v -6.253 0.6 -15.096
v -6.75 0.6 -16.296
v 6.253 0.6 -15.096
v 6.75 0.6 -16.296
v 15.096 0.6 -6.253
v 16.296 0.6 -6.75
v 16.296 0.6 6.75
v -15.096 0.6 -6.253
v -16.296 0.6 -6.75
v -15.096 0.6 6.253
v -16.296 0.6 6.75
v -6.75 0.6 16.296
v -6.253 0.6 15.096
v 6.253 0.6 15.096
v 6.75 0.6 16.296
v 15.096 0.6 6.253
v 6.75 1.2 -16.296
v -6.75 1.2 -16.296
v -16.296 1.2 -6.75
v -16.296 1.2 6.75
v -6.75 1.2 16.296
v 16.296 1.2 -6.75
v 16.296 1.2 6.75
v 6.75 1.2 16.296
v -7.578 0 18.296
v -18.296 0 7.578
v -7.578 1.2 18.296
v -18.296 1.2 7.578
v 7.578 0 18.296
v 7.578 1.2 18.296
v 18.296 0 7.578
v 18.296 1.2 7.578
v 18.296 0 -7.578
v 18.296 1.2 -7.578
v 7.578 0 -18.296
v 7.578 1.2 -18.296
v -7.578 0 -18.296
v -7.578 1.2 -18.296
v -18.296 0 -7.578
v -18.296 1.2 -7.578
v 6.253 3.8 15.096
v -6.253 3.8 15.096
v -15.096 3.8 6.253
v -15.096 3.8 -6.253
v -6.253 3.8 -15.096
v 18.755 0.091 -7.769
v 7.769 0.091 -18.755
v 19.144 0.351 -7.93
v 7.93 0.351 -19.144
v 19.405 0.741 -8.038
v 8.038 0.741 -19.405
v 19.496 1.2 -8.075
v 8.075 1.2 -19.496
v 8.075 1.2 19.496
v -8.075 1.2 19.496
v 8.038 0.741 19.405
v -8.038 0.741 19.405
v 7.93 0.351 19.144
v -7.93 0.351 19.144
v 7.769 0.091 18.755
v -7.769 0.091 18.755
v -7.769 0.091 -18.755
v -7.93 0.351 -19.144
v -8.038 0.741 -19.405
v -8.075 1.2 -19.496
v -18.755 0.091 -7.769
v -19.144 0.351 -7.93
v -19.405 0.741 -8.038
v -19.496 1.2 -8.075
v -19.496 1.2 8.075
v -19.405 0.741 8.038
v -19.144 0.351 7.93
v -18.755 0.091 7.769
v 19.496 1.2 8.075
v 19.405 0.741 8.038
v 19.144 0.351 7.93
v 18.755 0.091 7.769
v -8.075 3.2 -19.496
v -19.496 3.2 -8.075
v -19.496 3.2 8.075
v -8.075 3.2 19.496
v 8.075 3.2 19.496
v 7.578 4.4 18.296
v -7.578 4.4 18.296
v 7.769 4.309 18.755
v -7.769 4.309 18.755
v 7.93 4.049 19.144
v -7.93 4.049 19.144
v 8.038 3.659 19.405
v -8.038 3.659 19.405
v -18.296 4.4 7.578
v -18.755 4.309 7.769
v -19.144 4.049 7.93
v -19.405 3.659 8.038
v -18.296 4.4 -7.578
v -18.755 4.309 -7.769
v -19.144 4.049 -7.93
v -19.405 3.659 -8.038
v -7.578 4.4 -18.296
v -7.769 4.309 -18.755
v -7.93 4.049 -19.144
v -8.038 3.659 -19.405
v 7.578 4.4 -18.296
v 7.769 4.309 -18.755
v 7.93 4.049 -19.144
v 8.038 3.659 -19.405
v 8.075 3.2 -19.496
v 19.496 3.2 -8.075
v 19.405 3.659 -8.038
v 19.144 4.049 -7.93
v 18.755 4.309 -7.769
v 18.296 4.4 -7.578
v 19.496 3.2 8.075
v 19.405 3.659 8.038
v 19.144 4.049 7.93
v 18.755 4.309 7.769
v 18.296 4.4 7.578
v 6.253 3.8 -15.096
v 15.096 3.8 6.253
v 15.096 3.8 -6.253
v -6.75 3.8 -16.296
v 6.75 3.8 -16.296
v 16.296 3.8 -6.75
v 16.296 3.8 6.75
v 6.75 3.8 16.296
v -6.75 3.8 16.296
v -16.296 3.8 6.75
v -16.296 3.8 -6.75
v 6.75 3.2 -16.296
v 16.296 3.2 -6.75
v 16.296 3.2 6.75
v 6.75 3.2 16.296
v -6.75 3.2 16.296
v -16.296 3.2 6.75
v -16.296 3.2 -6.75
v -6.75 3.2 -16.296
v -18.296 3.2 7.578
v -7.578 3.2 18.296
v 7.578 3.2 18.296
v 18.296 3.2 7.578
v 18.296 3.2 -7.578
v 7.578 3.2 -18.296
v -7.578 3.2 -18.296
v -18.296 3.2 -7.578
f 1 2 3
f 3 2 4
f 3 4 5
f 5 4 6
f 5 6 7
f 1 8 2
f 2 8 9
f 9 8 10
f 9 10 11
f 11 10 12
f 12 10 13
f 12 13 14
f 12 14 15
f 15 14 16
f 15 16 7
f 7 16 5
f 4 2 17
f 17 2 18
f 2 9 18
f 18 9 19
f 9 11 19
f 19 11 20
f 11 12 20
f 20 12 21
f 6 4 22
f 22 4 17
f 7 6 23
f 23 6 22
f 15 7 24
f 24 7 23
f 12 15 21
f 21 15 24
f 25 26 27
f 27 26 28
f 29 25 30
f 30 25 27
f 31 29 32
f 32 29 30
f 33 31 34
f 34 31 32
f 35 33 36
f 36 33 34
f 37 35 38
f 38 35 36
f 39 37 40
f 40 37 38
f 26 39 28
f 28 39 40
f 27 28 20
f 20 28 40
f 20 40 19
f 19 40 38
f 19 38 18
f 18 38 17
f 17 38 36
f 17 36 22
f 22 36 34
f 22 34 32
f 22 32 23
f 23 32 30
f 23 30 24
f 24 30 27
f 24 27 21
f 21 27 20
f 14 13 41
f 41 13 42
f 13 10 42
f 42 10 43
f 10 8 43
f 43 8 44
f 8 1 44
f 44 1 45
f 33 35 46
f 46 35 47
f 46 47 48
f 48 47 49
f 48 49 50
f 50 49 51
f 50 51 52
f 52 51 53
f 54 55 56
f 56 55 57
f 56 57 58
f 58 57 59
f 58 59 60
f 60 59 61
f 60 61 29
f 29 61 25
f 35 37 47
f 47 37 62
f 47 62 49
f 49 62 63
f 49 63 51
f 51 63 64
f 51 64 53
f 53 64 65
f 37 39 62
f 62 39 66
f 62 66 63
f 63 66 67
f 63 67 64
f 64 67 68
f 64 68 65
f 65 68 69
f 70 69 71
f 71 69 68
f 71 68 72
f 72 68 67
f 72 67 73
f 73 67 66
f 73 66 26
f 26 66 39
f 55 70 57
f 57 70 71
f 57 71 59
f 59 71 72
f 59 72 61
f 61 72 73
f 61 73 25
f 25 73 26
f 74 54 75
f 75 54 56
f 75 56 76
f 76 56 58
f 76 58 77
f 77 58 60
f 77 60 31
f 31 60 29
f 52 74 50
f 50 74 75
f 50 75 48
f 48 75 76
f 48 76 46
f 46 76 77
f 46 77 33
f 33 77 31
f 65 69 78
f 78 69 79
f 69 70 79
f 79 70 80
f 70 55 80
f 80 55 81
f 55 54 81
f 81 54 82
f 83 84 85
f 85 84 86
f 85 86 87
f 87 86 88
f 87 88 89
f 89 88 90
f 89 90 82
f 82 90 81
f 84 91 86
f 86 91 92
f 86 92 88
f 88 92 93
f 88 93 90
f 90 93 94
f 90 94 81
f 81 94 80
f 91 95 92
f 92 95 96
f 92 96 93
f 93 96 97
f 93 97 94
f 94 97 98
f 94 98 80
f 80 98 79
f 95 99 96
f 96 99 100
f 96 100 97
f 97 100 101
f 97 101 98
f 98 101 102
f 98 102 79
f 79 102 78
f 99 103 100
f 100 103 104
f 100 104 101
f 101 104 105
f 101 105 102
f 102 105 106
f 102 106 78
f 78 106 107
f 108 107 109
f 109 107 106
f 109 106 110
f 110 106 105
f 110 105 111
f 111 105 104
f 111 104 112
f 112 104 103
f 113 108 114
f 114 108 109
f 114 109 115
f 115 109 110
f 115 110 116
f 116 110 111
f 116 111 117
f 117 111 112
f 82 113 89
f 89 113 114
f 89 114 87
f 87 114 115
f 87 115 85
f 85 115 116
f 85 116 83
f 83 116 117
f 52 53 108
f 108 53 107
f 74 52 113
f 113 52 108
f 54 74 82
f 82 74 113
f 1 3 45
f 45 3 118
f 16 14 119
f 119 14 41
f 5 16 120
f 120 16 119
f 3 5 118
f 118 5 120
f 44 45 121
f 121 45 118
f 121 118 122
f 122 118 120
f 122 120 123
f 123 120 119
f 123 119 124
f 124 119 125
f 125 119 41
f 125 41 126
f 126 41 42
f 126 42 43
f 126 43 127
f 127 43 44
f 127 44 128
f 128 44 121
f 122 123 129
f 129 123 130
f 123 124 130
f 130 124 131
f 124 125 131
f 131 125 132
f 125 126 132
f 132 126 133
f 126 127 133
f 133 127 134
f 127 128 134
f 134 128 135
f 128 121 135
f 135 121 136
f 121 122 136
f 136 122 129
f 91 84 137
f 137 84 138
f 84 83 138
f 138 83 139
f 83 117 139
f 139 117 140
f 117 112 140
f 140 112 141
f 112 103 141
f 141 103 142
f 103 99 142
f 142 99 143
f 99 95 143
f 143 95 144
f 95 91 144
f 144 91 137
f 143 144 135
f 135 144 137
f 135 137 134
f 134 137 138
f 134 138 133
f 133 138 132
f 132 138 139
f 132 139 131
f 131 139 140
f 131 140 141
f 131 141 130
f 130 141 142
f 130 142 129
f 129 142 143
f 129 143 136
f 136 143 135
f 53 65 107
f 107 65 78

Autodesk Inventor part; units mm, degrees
ref_plane "YZ Plane" through (0, 0, 0) normal (1, 0, 0) x (0, 1, 0)
ref_plane "XZ Plane" through (0, 0, 0) normal (0, 1, 0) x (-1, 0, 0)
sketch "스케치1" plane through (0, 0, 0) normal (0, 1, 0) x (-1, 0, 0)
  line L0 (-16.2959, 6.75) -> (-6.75, 16.2959)
  line L1 (-6.75, 16.2959) -> (6.75, 16.2959)
  line L2 (6.75, 16.2959) -> (16.2959, 6.75)
  line L3 (16.2959, 6.75) -> (16.2959, -6.75)
  line L4 (16.2959, -6.75) -> (6.75, -16.2959)
  line L5 (6.75, -16.2959) -> (-6.75, -16.2959)
  line L6 (-6.75, -16.2959) -> (-16.2959, -6.75)
  line L7 (-16.2959, -6.75) -> (-16.2959, 6.75)
  line L8 (19.4959, 8.0755) -> (19.4959, -8.0755)
  line L9 (19.4959, -8.0755) -> (8.0755, -19.4959)
  line L10 (8.0755, -19.4959) -> (-8.0755, -19.4959)
  line L11 (-8.0755, -19.4959) -> (-19.4959, -8.0755)
  line L12 (-19.4959, -8.0755) -> (-19.4959, 8.0755)
  line L13 (-19.4959, 8.0755) -> (-8.0755, 19.4959)
  line L14 (-8.0755, 19.4959) -> (8.0755, 19.4959)
  line L15 (8.0755, 19.4959) -> (19.4959, 8.0755)
  point P0 (0, 0)
  point P1 (0, 0)
  point P2 (0, 0)
  dimension "d0" = 13.5
  dimension "d1" = 3.2
extrude "돌출1" add sketch "스케치1" along normal blind 4.4 contours L0 L1 L2 L3 L4 L5 L6 L7 | L8 L9 L10 L11 L12 L13 L14 L15
sketch "스케치14" plane through (0, 4.4, 0) normal (0, 1, 0) x (1, 0, 0)
  line L0 (6.75, -16.2959) -> (-6.75, -16.2959)
  line L1 (-6.75, -16.2959) -> (-16.2959, -6.75)
  line L2 (-16.2959, -6.75) -> (-16.2959, 6.75)
  line L3 (-16.2959, 6.75) -> (-6.75, 16.2959)
  line L4 (-6.75, 16.2959) -> (6.75, 16.2959)
  line L5 (6.75, 16.2959) -> (16.2959, 6.75)
  line L6 (16.2959, 6.75) -> (16.2959, -6.75)
  line L7 (16.2959, -6.75) -> (6.75, -16.2959)
  line L8 (-7.5784, 18.2959) -> (7.5784, 18.2959)
  line L9 (7.5784, 18.2959) -> (18.2959, 7.5784)
  line L10 (18.2959, 7.5784) -> (18.2959, -7.5784)
  line L11 (18.2959, -7.5784) -> (7.5784, -18.2959)
  line L12 (7.5784, -18.2959) -> (-7.5784, -18.2959)
  line L13 (-7.5784, -18.2959) -> (-18.2959, -7.5784)
  line L14 (-18.2959, -7.5784) -> (-18.2959, 7.5784)
  line L15 (-18.2959, 7.5784) -> (-7.5784, 18.2959)
  line L16 (19.4959, -8.0755) -> (19.4959, 8.0755) projected
  point P0 (0, 0)
  point P1 (0, 0)
  point P2 (0, 0)
  dimension "d138" = 2
  dimension "d139" = 1.2
extrude "돌출16" cut sketch "스케치14" against normal blind 1.2
sketch "스케치15" plane through (0, 4.4, 0) normal (0, 1, 0) x (1, 0, 0)
  line L0 (-16.2959, -6.75) -> (-6.75, -16.2959) projected
  line L1 (-6.75, -16.2959) -> (6.75, -16.2959) projected
  line L2 (6.75, -16.2959) -> (16.2959, -6.75) projected
  line L3 (16.2959, -6.75) -> (16.2959, 6.75) projected
  line L4 (16.2959, 6.75) -> (6.75, 16.2959) projected
  line L5 (6.75, 16.2959) -> (-6.75, 16.2959) projected
  line L6 (-6.75, 16.2959) -> (-16.2959, 6.75) projected
  line L7 (-16.2959, 6.75) -> (-16.2959, -6.75) projected
  point P0 (0, 0)
extrude "돌출17" cut sketch "스케치15" against normal blind 0.6
sketch "스케치16" plane through (0, 3.8, 0) normal (0, 1, 0) x (1, 0, 0)
  line L0 (-6.2529, 15.0959) -> (6.2529, 15.0959)
  line L1 (6.2529, 15.0959) -> (15.0959, 6.2529)
  line L2 (15.0959, 6.2529) -> (15.0959, -6.2529)
  line L3 (15.0959, -6.2529) -> (6.2529, -15.0959)
  line L4 (6.2529, -15.0959) -> (-6.2529, -15.0959)
  line L5 (-6.2529, -15.0959) -> (-15.0959, -6.2529)
  line L6 (-15.0959, -6.2529) -> (-15.0959, 6.2529)
  line L7 (-15.0959, 6.2529) -> (-6.2529, 15.0959)
  line L8 (16.2959, 6.75) -> (16.2959, -6.75) projected
  point P0 (0, 0)
  point P1 (0, 0)
  dimension "d144" = 1.2
extrude "돌출18" cut sketch "스케치16" against normal up to surface (3.8 mm away)
fillet "모깎기2" radius 1.2 16 edges at (0, 4.4, -19.4959) (-13.7857, 4.4, -13.7857) (13.7857, 4.4, -13.7857) (19.4959, 4.4, 0) (13.7857, 4.4, 13.7857) (0, 4.4, 19.4959) (-13.7857, 4.4, 13.7857) (-19.4959, 4.4, 0) (-19.4959, 0, 0) (-13.7857, 0, 13.7857) (0, 0, 19.4959) (13.7857, 0, 13.7857) (-13.7857, 0, -13.7857) (0, 0, -19.4959) (19.4959, 0, 0) (13.7857, 0, -13.7857)
ref_plane "작업 평면3" through (0, 2.2, 0) normal (0, -1, 0) x (1, 0, 0)
mirror "미러6" about plane through (0, 2.2, 0) normal (0, -1, 0) of "돌출17", "돌출16"
properties part number "OV-PAM_ring_2"
